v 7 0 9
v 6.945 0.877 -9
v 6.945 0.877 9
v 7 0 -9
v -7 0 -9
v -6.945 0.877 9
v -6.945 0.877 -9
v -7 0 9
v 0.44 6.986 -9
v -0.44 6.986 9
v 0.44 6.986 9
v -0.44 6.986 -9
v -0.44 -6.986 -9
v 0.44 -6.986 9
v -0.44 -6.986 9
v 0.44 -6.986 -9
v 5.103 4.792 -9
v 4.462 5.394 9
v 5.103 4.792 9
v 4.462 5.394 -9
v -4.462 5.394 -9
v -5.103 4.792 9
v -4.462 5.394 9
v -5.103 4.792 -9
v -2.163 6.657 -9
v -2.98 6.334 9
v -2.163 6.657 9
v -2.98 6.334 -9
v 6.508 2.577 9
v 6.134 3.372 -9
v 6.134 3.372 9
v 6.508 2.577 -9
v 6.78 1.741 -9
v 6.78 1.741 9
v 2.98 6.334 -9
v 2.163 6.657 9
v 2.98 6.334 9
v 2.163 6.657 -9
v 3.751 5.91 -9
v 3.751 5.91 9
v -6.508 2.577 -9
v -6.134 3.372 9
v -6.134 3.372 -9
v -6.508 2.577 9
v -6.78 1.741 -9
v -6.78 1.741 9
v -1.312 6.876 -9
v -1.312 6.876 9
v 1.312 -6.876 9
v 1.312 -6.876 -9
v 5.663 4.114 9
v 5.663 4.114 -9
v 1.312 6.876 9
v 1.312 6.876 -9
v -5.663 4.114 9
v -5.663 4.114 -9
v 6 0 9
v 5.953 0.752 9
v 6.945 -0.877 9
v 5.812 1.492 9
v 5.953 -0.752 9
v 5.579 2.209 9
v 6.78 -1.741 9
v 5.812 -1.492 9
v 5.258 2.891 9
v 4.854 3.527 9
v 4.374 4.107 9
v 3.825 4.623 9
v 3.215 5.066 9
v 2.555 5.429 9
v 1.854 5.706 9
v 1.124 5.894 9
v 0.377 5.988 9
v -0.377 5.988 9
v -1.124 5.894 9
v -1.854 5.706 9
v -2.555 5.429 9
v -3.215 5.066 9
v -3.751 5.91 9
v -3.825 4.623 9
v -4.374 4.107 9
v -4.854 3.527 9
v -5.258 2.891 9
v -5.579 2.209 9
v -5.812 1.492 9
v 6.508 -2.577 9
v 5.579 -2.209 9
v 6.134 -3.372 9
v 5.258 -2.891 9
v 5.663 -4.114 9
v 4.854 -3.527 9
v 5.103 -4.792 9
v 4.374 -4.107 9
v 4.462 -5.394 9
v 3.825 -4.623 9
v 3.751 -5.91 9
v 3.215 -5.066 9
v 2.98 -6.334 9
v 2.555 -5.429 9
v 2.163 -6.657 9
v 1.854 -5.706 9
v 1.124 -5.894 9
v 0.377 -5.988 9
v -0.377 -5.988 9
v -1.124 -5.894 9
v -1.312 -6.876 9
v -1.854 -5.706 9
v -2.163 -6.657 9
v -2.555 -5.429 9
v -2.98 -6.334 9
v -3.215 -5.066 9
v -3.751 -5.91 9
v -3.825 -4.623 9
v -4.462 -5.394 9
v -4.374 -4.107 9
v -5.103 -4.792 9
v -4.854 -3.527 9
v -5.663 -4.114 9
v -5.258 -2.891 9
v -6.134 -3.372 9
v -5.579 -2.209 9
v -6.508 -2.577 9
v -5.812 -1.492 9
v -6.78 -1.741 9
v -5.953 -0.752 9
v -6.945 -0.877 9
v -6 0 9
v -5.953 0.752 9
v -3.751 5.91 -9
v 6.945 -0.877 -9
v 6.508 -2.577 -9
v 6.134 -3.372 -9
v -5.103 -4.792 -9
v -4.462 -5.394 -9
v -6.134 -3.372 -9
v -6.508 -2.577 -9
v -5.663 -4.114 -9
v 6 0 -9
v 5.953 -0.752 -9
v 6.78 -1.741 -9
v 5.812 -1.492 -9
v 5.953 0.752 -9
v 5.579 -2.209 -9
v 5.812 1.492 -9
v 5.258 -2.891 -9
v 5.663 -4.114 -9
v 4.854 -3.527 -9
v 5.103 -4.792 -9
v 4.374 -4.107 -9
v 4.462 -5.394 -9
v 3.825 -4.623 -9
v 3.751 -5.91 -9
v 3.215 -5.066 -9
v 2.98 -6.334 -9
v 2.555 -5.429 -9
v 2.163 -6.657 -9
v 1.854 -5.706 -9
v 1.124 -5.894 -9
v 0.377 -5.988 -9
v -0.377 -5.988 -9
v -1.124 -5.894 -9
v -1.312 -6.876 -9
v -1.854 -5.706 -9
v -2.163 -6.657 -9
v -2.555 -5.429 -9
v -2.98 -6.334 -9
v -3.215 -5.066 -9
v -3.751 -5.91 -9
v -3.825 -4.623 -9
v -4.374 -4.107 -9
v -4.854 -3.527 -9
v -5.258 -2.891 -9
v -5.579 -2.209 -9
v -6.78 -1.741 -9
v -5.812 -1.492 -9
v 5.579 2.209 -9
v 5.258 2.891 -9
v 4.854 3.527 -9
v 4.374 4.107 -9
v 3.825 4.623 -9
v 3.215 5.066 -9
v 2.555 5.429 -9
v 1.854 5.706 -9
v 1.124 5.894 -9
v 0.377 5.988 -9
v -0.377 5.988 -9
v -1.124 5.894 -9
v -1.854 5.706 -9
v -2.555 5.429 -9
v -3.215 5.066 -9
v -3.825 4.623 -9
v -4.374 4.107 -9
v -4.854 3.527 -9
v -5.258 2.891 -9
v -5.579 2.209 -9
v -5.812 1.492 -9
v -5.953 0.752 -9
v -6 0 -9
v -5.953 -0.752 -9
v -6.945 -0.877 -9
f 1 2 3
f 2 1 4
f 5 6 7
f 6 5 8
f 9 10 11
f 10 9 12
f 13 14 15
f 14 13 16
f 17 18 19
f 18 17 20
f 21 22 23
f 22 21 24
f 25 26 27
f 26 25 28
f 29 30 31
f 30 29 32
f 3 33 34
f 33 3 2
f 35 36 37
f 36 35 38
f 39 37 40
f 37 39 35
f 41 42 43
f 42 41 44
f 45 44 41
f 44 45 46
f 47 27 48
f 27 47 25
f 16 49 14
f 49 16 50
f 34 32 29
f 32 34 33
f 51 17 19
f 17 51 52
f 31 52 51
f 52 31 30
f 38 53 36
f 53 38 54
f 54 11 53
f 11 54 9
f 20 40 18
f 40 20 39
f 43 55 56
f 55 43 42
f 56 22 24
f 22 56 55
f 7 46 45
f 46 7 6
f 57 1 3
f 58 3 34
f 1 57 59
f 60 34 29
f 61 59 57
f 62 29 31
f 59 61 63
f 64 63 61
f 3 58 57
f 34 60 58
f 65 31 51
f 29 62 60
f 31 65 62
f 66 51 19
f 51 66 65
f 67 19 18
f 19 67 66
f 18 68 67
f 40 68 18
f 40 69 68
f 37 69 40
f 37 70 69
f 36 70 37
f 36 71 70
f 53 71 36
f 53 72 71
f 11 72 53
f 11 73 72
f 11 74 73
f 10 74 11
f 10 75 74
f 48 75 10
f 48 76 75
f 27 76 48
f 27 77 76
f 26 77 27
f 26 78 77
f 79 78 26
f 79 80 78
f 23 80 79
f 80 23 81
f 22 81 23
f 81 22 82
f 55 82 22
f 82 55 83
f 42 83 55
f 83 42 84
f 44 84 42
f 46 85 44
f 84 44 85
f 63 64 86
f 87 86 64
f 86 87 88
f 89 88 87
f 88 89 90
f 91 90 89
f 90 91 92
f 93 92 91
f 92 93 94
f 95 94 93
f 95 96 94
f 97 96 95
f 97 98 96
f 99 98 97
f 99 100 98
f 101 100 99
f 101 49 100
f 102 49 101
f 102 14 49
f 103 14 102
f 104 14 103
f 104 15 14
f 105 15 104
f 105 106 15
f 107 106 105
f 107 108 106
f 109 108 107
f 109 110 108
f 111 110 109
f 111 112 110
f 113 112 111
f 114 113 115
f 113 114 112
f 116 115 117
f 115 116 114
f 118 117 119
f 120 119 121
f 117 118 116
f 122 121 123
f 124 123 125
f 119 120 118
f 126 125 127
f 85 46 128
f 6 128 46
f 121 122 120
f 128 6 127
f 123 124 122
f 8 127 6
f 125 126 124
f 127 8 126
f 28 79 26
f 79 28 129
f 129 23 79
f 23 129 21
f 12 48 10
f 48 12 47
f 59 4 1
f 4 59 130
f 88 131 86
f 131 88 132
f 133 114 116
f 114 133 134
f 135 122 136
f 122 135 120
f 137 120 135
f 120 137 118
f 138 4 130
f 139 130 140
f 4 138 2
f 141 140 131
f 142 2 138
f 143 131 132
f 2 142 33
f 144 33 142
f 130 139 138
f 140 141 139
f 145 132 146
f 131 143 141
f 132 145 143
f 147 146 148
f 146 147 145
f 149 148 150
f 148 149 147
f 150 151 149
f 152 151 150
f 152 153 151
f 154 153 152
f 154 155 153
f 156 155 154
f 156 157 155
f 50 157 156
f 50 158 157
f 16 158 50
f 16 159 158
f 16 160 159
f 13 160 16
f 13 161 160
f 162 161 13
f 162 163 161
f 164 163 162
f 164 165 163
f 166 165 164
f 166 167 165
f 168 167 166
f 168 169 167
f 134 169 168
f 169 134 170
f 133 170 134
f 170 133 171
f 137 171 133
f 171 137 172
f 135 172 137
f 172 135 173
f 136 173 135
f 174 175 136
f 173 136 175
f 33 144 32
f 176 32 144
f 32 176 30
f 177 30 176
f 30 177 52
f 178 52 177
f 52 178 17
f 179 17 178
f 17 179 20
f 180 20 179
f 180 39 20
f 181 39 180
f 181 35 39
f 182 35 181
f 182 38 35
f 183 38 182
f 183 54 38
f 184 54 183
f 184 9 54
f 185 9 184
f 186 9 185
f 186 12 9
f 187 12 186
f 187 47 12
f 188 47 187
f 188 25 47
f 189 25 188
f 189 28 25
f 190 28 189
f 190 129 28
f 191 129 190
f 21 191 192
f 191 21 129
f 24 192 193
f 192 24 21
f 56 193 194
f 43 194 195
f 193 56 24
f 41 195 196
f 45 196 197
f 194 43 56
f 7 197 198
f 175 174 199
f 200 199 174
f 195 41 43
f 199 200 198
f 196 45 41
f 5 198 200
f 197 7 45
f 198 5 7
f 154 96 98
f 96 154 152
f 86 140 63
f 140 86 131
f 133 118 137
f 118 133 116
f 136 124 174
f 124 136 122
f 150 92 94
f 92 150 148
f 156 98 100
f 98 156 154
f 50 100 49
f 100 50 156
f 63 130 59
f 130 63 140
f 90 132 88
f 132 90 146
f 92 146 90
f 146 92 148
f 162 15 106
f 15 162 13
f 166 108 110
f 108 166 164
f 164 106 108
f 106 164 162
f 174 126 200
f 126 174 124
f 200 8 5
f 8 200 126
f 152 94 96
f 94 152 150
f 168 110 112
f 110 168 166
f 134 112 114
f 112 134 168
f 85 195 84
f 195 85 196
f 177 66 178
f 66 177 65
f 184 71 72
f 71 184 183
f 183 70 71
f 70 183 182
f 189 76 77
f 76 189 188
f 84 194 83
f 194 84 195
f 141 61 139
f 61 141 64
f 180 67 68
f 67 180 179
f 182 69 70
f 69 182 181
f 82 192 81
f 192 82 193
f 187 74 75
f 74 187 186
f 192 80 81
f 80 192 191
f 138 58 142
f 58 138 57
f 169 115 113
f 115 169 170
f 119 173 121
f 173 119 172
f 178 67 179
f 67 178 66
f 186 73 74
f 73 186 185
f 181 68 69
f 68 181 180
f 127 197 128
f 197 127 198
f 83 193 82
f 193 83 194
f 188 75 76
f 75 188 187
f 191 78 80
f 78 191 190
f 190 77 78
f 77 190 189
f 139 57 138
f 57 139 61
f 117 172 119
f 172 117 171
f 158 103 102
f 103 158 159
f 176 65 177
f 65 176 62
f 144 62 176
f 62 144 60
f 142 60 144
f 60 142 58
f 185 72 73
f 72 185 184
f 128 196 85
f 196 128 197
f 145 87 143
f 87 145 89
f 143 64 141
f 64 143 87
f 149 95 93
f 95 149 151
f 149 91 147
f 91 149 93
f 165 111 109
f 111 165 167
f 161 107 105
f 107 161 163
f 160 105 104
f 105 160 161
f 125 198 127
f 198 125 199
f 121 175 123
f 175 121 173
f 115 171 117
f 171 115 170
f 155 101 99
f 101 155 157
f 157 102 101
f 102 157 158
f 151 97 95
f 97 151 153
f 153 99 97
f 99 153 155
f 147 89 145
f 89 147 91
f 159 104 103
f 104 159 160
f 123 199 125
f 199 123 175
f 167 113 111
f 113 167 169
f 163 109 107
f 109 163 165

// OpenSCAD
$fn = 50;


difference() {
	union() {
		translate(v = [0, 0, -9.0000000000]) {
			cylinder(h = 18, r = 7.0000000000);
		}
	}
	union() {
		translate(v = [0, 0, -100.0000000000]) {
			cylinder(h = 200, r = 6);
		}
	}
}
